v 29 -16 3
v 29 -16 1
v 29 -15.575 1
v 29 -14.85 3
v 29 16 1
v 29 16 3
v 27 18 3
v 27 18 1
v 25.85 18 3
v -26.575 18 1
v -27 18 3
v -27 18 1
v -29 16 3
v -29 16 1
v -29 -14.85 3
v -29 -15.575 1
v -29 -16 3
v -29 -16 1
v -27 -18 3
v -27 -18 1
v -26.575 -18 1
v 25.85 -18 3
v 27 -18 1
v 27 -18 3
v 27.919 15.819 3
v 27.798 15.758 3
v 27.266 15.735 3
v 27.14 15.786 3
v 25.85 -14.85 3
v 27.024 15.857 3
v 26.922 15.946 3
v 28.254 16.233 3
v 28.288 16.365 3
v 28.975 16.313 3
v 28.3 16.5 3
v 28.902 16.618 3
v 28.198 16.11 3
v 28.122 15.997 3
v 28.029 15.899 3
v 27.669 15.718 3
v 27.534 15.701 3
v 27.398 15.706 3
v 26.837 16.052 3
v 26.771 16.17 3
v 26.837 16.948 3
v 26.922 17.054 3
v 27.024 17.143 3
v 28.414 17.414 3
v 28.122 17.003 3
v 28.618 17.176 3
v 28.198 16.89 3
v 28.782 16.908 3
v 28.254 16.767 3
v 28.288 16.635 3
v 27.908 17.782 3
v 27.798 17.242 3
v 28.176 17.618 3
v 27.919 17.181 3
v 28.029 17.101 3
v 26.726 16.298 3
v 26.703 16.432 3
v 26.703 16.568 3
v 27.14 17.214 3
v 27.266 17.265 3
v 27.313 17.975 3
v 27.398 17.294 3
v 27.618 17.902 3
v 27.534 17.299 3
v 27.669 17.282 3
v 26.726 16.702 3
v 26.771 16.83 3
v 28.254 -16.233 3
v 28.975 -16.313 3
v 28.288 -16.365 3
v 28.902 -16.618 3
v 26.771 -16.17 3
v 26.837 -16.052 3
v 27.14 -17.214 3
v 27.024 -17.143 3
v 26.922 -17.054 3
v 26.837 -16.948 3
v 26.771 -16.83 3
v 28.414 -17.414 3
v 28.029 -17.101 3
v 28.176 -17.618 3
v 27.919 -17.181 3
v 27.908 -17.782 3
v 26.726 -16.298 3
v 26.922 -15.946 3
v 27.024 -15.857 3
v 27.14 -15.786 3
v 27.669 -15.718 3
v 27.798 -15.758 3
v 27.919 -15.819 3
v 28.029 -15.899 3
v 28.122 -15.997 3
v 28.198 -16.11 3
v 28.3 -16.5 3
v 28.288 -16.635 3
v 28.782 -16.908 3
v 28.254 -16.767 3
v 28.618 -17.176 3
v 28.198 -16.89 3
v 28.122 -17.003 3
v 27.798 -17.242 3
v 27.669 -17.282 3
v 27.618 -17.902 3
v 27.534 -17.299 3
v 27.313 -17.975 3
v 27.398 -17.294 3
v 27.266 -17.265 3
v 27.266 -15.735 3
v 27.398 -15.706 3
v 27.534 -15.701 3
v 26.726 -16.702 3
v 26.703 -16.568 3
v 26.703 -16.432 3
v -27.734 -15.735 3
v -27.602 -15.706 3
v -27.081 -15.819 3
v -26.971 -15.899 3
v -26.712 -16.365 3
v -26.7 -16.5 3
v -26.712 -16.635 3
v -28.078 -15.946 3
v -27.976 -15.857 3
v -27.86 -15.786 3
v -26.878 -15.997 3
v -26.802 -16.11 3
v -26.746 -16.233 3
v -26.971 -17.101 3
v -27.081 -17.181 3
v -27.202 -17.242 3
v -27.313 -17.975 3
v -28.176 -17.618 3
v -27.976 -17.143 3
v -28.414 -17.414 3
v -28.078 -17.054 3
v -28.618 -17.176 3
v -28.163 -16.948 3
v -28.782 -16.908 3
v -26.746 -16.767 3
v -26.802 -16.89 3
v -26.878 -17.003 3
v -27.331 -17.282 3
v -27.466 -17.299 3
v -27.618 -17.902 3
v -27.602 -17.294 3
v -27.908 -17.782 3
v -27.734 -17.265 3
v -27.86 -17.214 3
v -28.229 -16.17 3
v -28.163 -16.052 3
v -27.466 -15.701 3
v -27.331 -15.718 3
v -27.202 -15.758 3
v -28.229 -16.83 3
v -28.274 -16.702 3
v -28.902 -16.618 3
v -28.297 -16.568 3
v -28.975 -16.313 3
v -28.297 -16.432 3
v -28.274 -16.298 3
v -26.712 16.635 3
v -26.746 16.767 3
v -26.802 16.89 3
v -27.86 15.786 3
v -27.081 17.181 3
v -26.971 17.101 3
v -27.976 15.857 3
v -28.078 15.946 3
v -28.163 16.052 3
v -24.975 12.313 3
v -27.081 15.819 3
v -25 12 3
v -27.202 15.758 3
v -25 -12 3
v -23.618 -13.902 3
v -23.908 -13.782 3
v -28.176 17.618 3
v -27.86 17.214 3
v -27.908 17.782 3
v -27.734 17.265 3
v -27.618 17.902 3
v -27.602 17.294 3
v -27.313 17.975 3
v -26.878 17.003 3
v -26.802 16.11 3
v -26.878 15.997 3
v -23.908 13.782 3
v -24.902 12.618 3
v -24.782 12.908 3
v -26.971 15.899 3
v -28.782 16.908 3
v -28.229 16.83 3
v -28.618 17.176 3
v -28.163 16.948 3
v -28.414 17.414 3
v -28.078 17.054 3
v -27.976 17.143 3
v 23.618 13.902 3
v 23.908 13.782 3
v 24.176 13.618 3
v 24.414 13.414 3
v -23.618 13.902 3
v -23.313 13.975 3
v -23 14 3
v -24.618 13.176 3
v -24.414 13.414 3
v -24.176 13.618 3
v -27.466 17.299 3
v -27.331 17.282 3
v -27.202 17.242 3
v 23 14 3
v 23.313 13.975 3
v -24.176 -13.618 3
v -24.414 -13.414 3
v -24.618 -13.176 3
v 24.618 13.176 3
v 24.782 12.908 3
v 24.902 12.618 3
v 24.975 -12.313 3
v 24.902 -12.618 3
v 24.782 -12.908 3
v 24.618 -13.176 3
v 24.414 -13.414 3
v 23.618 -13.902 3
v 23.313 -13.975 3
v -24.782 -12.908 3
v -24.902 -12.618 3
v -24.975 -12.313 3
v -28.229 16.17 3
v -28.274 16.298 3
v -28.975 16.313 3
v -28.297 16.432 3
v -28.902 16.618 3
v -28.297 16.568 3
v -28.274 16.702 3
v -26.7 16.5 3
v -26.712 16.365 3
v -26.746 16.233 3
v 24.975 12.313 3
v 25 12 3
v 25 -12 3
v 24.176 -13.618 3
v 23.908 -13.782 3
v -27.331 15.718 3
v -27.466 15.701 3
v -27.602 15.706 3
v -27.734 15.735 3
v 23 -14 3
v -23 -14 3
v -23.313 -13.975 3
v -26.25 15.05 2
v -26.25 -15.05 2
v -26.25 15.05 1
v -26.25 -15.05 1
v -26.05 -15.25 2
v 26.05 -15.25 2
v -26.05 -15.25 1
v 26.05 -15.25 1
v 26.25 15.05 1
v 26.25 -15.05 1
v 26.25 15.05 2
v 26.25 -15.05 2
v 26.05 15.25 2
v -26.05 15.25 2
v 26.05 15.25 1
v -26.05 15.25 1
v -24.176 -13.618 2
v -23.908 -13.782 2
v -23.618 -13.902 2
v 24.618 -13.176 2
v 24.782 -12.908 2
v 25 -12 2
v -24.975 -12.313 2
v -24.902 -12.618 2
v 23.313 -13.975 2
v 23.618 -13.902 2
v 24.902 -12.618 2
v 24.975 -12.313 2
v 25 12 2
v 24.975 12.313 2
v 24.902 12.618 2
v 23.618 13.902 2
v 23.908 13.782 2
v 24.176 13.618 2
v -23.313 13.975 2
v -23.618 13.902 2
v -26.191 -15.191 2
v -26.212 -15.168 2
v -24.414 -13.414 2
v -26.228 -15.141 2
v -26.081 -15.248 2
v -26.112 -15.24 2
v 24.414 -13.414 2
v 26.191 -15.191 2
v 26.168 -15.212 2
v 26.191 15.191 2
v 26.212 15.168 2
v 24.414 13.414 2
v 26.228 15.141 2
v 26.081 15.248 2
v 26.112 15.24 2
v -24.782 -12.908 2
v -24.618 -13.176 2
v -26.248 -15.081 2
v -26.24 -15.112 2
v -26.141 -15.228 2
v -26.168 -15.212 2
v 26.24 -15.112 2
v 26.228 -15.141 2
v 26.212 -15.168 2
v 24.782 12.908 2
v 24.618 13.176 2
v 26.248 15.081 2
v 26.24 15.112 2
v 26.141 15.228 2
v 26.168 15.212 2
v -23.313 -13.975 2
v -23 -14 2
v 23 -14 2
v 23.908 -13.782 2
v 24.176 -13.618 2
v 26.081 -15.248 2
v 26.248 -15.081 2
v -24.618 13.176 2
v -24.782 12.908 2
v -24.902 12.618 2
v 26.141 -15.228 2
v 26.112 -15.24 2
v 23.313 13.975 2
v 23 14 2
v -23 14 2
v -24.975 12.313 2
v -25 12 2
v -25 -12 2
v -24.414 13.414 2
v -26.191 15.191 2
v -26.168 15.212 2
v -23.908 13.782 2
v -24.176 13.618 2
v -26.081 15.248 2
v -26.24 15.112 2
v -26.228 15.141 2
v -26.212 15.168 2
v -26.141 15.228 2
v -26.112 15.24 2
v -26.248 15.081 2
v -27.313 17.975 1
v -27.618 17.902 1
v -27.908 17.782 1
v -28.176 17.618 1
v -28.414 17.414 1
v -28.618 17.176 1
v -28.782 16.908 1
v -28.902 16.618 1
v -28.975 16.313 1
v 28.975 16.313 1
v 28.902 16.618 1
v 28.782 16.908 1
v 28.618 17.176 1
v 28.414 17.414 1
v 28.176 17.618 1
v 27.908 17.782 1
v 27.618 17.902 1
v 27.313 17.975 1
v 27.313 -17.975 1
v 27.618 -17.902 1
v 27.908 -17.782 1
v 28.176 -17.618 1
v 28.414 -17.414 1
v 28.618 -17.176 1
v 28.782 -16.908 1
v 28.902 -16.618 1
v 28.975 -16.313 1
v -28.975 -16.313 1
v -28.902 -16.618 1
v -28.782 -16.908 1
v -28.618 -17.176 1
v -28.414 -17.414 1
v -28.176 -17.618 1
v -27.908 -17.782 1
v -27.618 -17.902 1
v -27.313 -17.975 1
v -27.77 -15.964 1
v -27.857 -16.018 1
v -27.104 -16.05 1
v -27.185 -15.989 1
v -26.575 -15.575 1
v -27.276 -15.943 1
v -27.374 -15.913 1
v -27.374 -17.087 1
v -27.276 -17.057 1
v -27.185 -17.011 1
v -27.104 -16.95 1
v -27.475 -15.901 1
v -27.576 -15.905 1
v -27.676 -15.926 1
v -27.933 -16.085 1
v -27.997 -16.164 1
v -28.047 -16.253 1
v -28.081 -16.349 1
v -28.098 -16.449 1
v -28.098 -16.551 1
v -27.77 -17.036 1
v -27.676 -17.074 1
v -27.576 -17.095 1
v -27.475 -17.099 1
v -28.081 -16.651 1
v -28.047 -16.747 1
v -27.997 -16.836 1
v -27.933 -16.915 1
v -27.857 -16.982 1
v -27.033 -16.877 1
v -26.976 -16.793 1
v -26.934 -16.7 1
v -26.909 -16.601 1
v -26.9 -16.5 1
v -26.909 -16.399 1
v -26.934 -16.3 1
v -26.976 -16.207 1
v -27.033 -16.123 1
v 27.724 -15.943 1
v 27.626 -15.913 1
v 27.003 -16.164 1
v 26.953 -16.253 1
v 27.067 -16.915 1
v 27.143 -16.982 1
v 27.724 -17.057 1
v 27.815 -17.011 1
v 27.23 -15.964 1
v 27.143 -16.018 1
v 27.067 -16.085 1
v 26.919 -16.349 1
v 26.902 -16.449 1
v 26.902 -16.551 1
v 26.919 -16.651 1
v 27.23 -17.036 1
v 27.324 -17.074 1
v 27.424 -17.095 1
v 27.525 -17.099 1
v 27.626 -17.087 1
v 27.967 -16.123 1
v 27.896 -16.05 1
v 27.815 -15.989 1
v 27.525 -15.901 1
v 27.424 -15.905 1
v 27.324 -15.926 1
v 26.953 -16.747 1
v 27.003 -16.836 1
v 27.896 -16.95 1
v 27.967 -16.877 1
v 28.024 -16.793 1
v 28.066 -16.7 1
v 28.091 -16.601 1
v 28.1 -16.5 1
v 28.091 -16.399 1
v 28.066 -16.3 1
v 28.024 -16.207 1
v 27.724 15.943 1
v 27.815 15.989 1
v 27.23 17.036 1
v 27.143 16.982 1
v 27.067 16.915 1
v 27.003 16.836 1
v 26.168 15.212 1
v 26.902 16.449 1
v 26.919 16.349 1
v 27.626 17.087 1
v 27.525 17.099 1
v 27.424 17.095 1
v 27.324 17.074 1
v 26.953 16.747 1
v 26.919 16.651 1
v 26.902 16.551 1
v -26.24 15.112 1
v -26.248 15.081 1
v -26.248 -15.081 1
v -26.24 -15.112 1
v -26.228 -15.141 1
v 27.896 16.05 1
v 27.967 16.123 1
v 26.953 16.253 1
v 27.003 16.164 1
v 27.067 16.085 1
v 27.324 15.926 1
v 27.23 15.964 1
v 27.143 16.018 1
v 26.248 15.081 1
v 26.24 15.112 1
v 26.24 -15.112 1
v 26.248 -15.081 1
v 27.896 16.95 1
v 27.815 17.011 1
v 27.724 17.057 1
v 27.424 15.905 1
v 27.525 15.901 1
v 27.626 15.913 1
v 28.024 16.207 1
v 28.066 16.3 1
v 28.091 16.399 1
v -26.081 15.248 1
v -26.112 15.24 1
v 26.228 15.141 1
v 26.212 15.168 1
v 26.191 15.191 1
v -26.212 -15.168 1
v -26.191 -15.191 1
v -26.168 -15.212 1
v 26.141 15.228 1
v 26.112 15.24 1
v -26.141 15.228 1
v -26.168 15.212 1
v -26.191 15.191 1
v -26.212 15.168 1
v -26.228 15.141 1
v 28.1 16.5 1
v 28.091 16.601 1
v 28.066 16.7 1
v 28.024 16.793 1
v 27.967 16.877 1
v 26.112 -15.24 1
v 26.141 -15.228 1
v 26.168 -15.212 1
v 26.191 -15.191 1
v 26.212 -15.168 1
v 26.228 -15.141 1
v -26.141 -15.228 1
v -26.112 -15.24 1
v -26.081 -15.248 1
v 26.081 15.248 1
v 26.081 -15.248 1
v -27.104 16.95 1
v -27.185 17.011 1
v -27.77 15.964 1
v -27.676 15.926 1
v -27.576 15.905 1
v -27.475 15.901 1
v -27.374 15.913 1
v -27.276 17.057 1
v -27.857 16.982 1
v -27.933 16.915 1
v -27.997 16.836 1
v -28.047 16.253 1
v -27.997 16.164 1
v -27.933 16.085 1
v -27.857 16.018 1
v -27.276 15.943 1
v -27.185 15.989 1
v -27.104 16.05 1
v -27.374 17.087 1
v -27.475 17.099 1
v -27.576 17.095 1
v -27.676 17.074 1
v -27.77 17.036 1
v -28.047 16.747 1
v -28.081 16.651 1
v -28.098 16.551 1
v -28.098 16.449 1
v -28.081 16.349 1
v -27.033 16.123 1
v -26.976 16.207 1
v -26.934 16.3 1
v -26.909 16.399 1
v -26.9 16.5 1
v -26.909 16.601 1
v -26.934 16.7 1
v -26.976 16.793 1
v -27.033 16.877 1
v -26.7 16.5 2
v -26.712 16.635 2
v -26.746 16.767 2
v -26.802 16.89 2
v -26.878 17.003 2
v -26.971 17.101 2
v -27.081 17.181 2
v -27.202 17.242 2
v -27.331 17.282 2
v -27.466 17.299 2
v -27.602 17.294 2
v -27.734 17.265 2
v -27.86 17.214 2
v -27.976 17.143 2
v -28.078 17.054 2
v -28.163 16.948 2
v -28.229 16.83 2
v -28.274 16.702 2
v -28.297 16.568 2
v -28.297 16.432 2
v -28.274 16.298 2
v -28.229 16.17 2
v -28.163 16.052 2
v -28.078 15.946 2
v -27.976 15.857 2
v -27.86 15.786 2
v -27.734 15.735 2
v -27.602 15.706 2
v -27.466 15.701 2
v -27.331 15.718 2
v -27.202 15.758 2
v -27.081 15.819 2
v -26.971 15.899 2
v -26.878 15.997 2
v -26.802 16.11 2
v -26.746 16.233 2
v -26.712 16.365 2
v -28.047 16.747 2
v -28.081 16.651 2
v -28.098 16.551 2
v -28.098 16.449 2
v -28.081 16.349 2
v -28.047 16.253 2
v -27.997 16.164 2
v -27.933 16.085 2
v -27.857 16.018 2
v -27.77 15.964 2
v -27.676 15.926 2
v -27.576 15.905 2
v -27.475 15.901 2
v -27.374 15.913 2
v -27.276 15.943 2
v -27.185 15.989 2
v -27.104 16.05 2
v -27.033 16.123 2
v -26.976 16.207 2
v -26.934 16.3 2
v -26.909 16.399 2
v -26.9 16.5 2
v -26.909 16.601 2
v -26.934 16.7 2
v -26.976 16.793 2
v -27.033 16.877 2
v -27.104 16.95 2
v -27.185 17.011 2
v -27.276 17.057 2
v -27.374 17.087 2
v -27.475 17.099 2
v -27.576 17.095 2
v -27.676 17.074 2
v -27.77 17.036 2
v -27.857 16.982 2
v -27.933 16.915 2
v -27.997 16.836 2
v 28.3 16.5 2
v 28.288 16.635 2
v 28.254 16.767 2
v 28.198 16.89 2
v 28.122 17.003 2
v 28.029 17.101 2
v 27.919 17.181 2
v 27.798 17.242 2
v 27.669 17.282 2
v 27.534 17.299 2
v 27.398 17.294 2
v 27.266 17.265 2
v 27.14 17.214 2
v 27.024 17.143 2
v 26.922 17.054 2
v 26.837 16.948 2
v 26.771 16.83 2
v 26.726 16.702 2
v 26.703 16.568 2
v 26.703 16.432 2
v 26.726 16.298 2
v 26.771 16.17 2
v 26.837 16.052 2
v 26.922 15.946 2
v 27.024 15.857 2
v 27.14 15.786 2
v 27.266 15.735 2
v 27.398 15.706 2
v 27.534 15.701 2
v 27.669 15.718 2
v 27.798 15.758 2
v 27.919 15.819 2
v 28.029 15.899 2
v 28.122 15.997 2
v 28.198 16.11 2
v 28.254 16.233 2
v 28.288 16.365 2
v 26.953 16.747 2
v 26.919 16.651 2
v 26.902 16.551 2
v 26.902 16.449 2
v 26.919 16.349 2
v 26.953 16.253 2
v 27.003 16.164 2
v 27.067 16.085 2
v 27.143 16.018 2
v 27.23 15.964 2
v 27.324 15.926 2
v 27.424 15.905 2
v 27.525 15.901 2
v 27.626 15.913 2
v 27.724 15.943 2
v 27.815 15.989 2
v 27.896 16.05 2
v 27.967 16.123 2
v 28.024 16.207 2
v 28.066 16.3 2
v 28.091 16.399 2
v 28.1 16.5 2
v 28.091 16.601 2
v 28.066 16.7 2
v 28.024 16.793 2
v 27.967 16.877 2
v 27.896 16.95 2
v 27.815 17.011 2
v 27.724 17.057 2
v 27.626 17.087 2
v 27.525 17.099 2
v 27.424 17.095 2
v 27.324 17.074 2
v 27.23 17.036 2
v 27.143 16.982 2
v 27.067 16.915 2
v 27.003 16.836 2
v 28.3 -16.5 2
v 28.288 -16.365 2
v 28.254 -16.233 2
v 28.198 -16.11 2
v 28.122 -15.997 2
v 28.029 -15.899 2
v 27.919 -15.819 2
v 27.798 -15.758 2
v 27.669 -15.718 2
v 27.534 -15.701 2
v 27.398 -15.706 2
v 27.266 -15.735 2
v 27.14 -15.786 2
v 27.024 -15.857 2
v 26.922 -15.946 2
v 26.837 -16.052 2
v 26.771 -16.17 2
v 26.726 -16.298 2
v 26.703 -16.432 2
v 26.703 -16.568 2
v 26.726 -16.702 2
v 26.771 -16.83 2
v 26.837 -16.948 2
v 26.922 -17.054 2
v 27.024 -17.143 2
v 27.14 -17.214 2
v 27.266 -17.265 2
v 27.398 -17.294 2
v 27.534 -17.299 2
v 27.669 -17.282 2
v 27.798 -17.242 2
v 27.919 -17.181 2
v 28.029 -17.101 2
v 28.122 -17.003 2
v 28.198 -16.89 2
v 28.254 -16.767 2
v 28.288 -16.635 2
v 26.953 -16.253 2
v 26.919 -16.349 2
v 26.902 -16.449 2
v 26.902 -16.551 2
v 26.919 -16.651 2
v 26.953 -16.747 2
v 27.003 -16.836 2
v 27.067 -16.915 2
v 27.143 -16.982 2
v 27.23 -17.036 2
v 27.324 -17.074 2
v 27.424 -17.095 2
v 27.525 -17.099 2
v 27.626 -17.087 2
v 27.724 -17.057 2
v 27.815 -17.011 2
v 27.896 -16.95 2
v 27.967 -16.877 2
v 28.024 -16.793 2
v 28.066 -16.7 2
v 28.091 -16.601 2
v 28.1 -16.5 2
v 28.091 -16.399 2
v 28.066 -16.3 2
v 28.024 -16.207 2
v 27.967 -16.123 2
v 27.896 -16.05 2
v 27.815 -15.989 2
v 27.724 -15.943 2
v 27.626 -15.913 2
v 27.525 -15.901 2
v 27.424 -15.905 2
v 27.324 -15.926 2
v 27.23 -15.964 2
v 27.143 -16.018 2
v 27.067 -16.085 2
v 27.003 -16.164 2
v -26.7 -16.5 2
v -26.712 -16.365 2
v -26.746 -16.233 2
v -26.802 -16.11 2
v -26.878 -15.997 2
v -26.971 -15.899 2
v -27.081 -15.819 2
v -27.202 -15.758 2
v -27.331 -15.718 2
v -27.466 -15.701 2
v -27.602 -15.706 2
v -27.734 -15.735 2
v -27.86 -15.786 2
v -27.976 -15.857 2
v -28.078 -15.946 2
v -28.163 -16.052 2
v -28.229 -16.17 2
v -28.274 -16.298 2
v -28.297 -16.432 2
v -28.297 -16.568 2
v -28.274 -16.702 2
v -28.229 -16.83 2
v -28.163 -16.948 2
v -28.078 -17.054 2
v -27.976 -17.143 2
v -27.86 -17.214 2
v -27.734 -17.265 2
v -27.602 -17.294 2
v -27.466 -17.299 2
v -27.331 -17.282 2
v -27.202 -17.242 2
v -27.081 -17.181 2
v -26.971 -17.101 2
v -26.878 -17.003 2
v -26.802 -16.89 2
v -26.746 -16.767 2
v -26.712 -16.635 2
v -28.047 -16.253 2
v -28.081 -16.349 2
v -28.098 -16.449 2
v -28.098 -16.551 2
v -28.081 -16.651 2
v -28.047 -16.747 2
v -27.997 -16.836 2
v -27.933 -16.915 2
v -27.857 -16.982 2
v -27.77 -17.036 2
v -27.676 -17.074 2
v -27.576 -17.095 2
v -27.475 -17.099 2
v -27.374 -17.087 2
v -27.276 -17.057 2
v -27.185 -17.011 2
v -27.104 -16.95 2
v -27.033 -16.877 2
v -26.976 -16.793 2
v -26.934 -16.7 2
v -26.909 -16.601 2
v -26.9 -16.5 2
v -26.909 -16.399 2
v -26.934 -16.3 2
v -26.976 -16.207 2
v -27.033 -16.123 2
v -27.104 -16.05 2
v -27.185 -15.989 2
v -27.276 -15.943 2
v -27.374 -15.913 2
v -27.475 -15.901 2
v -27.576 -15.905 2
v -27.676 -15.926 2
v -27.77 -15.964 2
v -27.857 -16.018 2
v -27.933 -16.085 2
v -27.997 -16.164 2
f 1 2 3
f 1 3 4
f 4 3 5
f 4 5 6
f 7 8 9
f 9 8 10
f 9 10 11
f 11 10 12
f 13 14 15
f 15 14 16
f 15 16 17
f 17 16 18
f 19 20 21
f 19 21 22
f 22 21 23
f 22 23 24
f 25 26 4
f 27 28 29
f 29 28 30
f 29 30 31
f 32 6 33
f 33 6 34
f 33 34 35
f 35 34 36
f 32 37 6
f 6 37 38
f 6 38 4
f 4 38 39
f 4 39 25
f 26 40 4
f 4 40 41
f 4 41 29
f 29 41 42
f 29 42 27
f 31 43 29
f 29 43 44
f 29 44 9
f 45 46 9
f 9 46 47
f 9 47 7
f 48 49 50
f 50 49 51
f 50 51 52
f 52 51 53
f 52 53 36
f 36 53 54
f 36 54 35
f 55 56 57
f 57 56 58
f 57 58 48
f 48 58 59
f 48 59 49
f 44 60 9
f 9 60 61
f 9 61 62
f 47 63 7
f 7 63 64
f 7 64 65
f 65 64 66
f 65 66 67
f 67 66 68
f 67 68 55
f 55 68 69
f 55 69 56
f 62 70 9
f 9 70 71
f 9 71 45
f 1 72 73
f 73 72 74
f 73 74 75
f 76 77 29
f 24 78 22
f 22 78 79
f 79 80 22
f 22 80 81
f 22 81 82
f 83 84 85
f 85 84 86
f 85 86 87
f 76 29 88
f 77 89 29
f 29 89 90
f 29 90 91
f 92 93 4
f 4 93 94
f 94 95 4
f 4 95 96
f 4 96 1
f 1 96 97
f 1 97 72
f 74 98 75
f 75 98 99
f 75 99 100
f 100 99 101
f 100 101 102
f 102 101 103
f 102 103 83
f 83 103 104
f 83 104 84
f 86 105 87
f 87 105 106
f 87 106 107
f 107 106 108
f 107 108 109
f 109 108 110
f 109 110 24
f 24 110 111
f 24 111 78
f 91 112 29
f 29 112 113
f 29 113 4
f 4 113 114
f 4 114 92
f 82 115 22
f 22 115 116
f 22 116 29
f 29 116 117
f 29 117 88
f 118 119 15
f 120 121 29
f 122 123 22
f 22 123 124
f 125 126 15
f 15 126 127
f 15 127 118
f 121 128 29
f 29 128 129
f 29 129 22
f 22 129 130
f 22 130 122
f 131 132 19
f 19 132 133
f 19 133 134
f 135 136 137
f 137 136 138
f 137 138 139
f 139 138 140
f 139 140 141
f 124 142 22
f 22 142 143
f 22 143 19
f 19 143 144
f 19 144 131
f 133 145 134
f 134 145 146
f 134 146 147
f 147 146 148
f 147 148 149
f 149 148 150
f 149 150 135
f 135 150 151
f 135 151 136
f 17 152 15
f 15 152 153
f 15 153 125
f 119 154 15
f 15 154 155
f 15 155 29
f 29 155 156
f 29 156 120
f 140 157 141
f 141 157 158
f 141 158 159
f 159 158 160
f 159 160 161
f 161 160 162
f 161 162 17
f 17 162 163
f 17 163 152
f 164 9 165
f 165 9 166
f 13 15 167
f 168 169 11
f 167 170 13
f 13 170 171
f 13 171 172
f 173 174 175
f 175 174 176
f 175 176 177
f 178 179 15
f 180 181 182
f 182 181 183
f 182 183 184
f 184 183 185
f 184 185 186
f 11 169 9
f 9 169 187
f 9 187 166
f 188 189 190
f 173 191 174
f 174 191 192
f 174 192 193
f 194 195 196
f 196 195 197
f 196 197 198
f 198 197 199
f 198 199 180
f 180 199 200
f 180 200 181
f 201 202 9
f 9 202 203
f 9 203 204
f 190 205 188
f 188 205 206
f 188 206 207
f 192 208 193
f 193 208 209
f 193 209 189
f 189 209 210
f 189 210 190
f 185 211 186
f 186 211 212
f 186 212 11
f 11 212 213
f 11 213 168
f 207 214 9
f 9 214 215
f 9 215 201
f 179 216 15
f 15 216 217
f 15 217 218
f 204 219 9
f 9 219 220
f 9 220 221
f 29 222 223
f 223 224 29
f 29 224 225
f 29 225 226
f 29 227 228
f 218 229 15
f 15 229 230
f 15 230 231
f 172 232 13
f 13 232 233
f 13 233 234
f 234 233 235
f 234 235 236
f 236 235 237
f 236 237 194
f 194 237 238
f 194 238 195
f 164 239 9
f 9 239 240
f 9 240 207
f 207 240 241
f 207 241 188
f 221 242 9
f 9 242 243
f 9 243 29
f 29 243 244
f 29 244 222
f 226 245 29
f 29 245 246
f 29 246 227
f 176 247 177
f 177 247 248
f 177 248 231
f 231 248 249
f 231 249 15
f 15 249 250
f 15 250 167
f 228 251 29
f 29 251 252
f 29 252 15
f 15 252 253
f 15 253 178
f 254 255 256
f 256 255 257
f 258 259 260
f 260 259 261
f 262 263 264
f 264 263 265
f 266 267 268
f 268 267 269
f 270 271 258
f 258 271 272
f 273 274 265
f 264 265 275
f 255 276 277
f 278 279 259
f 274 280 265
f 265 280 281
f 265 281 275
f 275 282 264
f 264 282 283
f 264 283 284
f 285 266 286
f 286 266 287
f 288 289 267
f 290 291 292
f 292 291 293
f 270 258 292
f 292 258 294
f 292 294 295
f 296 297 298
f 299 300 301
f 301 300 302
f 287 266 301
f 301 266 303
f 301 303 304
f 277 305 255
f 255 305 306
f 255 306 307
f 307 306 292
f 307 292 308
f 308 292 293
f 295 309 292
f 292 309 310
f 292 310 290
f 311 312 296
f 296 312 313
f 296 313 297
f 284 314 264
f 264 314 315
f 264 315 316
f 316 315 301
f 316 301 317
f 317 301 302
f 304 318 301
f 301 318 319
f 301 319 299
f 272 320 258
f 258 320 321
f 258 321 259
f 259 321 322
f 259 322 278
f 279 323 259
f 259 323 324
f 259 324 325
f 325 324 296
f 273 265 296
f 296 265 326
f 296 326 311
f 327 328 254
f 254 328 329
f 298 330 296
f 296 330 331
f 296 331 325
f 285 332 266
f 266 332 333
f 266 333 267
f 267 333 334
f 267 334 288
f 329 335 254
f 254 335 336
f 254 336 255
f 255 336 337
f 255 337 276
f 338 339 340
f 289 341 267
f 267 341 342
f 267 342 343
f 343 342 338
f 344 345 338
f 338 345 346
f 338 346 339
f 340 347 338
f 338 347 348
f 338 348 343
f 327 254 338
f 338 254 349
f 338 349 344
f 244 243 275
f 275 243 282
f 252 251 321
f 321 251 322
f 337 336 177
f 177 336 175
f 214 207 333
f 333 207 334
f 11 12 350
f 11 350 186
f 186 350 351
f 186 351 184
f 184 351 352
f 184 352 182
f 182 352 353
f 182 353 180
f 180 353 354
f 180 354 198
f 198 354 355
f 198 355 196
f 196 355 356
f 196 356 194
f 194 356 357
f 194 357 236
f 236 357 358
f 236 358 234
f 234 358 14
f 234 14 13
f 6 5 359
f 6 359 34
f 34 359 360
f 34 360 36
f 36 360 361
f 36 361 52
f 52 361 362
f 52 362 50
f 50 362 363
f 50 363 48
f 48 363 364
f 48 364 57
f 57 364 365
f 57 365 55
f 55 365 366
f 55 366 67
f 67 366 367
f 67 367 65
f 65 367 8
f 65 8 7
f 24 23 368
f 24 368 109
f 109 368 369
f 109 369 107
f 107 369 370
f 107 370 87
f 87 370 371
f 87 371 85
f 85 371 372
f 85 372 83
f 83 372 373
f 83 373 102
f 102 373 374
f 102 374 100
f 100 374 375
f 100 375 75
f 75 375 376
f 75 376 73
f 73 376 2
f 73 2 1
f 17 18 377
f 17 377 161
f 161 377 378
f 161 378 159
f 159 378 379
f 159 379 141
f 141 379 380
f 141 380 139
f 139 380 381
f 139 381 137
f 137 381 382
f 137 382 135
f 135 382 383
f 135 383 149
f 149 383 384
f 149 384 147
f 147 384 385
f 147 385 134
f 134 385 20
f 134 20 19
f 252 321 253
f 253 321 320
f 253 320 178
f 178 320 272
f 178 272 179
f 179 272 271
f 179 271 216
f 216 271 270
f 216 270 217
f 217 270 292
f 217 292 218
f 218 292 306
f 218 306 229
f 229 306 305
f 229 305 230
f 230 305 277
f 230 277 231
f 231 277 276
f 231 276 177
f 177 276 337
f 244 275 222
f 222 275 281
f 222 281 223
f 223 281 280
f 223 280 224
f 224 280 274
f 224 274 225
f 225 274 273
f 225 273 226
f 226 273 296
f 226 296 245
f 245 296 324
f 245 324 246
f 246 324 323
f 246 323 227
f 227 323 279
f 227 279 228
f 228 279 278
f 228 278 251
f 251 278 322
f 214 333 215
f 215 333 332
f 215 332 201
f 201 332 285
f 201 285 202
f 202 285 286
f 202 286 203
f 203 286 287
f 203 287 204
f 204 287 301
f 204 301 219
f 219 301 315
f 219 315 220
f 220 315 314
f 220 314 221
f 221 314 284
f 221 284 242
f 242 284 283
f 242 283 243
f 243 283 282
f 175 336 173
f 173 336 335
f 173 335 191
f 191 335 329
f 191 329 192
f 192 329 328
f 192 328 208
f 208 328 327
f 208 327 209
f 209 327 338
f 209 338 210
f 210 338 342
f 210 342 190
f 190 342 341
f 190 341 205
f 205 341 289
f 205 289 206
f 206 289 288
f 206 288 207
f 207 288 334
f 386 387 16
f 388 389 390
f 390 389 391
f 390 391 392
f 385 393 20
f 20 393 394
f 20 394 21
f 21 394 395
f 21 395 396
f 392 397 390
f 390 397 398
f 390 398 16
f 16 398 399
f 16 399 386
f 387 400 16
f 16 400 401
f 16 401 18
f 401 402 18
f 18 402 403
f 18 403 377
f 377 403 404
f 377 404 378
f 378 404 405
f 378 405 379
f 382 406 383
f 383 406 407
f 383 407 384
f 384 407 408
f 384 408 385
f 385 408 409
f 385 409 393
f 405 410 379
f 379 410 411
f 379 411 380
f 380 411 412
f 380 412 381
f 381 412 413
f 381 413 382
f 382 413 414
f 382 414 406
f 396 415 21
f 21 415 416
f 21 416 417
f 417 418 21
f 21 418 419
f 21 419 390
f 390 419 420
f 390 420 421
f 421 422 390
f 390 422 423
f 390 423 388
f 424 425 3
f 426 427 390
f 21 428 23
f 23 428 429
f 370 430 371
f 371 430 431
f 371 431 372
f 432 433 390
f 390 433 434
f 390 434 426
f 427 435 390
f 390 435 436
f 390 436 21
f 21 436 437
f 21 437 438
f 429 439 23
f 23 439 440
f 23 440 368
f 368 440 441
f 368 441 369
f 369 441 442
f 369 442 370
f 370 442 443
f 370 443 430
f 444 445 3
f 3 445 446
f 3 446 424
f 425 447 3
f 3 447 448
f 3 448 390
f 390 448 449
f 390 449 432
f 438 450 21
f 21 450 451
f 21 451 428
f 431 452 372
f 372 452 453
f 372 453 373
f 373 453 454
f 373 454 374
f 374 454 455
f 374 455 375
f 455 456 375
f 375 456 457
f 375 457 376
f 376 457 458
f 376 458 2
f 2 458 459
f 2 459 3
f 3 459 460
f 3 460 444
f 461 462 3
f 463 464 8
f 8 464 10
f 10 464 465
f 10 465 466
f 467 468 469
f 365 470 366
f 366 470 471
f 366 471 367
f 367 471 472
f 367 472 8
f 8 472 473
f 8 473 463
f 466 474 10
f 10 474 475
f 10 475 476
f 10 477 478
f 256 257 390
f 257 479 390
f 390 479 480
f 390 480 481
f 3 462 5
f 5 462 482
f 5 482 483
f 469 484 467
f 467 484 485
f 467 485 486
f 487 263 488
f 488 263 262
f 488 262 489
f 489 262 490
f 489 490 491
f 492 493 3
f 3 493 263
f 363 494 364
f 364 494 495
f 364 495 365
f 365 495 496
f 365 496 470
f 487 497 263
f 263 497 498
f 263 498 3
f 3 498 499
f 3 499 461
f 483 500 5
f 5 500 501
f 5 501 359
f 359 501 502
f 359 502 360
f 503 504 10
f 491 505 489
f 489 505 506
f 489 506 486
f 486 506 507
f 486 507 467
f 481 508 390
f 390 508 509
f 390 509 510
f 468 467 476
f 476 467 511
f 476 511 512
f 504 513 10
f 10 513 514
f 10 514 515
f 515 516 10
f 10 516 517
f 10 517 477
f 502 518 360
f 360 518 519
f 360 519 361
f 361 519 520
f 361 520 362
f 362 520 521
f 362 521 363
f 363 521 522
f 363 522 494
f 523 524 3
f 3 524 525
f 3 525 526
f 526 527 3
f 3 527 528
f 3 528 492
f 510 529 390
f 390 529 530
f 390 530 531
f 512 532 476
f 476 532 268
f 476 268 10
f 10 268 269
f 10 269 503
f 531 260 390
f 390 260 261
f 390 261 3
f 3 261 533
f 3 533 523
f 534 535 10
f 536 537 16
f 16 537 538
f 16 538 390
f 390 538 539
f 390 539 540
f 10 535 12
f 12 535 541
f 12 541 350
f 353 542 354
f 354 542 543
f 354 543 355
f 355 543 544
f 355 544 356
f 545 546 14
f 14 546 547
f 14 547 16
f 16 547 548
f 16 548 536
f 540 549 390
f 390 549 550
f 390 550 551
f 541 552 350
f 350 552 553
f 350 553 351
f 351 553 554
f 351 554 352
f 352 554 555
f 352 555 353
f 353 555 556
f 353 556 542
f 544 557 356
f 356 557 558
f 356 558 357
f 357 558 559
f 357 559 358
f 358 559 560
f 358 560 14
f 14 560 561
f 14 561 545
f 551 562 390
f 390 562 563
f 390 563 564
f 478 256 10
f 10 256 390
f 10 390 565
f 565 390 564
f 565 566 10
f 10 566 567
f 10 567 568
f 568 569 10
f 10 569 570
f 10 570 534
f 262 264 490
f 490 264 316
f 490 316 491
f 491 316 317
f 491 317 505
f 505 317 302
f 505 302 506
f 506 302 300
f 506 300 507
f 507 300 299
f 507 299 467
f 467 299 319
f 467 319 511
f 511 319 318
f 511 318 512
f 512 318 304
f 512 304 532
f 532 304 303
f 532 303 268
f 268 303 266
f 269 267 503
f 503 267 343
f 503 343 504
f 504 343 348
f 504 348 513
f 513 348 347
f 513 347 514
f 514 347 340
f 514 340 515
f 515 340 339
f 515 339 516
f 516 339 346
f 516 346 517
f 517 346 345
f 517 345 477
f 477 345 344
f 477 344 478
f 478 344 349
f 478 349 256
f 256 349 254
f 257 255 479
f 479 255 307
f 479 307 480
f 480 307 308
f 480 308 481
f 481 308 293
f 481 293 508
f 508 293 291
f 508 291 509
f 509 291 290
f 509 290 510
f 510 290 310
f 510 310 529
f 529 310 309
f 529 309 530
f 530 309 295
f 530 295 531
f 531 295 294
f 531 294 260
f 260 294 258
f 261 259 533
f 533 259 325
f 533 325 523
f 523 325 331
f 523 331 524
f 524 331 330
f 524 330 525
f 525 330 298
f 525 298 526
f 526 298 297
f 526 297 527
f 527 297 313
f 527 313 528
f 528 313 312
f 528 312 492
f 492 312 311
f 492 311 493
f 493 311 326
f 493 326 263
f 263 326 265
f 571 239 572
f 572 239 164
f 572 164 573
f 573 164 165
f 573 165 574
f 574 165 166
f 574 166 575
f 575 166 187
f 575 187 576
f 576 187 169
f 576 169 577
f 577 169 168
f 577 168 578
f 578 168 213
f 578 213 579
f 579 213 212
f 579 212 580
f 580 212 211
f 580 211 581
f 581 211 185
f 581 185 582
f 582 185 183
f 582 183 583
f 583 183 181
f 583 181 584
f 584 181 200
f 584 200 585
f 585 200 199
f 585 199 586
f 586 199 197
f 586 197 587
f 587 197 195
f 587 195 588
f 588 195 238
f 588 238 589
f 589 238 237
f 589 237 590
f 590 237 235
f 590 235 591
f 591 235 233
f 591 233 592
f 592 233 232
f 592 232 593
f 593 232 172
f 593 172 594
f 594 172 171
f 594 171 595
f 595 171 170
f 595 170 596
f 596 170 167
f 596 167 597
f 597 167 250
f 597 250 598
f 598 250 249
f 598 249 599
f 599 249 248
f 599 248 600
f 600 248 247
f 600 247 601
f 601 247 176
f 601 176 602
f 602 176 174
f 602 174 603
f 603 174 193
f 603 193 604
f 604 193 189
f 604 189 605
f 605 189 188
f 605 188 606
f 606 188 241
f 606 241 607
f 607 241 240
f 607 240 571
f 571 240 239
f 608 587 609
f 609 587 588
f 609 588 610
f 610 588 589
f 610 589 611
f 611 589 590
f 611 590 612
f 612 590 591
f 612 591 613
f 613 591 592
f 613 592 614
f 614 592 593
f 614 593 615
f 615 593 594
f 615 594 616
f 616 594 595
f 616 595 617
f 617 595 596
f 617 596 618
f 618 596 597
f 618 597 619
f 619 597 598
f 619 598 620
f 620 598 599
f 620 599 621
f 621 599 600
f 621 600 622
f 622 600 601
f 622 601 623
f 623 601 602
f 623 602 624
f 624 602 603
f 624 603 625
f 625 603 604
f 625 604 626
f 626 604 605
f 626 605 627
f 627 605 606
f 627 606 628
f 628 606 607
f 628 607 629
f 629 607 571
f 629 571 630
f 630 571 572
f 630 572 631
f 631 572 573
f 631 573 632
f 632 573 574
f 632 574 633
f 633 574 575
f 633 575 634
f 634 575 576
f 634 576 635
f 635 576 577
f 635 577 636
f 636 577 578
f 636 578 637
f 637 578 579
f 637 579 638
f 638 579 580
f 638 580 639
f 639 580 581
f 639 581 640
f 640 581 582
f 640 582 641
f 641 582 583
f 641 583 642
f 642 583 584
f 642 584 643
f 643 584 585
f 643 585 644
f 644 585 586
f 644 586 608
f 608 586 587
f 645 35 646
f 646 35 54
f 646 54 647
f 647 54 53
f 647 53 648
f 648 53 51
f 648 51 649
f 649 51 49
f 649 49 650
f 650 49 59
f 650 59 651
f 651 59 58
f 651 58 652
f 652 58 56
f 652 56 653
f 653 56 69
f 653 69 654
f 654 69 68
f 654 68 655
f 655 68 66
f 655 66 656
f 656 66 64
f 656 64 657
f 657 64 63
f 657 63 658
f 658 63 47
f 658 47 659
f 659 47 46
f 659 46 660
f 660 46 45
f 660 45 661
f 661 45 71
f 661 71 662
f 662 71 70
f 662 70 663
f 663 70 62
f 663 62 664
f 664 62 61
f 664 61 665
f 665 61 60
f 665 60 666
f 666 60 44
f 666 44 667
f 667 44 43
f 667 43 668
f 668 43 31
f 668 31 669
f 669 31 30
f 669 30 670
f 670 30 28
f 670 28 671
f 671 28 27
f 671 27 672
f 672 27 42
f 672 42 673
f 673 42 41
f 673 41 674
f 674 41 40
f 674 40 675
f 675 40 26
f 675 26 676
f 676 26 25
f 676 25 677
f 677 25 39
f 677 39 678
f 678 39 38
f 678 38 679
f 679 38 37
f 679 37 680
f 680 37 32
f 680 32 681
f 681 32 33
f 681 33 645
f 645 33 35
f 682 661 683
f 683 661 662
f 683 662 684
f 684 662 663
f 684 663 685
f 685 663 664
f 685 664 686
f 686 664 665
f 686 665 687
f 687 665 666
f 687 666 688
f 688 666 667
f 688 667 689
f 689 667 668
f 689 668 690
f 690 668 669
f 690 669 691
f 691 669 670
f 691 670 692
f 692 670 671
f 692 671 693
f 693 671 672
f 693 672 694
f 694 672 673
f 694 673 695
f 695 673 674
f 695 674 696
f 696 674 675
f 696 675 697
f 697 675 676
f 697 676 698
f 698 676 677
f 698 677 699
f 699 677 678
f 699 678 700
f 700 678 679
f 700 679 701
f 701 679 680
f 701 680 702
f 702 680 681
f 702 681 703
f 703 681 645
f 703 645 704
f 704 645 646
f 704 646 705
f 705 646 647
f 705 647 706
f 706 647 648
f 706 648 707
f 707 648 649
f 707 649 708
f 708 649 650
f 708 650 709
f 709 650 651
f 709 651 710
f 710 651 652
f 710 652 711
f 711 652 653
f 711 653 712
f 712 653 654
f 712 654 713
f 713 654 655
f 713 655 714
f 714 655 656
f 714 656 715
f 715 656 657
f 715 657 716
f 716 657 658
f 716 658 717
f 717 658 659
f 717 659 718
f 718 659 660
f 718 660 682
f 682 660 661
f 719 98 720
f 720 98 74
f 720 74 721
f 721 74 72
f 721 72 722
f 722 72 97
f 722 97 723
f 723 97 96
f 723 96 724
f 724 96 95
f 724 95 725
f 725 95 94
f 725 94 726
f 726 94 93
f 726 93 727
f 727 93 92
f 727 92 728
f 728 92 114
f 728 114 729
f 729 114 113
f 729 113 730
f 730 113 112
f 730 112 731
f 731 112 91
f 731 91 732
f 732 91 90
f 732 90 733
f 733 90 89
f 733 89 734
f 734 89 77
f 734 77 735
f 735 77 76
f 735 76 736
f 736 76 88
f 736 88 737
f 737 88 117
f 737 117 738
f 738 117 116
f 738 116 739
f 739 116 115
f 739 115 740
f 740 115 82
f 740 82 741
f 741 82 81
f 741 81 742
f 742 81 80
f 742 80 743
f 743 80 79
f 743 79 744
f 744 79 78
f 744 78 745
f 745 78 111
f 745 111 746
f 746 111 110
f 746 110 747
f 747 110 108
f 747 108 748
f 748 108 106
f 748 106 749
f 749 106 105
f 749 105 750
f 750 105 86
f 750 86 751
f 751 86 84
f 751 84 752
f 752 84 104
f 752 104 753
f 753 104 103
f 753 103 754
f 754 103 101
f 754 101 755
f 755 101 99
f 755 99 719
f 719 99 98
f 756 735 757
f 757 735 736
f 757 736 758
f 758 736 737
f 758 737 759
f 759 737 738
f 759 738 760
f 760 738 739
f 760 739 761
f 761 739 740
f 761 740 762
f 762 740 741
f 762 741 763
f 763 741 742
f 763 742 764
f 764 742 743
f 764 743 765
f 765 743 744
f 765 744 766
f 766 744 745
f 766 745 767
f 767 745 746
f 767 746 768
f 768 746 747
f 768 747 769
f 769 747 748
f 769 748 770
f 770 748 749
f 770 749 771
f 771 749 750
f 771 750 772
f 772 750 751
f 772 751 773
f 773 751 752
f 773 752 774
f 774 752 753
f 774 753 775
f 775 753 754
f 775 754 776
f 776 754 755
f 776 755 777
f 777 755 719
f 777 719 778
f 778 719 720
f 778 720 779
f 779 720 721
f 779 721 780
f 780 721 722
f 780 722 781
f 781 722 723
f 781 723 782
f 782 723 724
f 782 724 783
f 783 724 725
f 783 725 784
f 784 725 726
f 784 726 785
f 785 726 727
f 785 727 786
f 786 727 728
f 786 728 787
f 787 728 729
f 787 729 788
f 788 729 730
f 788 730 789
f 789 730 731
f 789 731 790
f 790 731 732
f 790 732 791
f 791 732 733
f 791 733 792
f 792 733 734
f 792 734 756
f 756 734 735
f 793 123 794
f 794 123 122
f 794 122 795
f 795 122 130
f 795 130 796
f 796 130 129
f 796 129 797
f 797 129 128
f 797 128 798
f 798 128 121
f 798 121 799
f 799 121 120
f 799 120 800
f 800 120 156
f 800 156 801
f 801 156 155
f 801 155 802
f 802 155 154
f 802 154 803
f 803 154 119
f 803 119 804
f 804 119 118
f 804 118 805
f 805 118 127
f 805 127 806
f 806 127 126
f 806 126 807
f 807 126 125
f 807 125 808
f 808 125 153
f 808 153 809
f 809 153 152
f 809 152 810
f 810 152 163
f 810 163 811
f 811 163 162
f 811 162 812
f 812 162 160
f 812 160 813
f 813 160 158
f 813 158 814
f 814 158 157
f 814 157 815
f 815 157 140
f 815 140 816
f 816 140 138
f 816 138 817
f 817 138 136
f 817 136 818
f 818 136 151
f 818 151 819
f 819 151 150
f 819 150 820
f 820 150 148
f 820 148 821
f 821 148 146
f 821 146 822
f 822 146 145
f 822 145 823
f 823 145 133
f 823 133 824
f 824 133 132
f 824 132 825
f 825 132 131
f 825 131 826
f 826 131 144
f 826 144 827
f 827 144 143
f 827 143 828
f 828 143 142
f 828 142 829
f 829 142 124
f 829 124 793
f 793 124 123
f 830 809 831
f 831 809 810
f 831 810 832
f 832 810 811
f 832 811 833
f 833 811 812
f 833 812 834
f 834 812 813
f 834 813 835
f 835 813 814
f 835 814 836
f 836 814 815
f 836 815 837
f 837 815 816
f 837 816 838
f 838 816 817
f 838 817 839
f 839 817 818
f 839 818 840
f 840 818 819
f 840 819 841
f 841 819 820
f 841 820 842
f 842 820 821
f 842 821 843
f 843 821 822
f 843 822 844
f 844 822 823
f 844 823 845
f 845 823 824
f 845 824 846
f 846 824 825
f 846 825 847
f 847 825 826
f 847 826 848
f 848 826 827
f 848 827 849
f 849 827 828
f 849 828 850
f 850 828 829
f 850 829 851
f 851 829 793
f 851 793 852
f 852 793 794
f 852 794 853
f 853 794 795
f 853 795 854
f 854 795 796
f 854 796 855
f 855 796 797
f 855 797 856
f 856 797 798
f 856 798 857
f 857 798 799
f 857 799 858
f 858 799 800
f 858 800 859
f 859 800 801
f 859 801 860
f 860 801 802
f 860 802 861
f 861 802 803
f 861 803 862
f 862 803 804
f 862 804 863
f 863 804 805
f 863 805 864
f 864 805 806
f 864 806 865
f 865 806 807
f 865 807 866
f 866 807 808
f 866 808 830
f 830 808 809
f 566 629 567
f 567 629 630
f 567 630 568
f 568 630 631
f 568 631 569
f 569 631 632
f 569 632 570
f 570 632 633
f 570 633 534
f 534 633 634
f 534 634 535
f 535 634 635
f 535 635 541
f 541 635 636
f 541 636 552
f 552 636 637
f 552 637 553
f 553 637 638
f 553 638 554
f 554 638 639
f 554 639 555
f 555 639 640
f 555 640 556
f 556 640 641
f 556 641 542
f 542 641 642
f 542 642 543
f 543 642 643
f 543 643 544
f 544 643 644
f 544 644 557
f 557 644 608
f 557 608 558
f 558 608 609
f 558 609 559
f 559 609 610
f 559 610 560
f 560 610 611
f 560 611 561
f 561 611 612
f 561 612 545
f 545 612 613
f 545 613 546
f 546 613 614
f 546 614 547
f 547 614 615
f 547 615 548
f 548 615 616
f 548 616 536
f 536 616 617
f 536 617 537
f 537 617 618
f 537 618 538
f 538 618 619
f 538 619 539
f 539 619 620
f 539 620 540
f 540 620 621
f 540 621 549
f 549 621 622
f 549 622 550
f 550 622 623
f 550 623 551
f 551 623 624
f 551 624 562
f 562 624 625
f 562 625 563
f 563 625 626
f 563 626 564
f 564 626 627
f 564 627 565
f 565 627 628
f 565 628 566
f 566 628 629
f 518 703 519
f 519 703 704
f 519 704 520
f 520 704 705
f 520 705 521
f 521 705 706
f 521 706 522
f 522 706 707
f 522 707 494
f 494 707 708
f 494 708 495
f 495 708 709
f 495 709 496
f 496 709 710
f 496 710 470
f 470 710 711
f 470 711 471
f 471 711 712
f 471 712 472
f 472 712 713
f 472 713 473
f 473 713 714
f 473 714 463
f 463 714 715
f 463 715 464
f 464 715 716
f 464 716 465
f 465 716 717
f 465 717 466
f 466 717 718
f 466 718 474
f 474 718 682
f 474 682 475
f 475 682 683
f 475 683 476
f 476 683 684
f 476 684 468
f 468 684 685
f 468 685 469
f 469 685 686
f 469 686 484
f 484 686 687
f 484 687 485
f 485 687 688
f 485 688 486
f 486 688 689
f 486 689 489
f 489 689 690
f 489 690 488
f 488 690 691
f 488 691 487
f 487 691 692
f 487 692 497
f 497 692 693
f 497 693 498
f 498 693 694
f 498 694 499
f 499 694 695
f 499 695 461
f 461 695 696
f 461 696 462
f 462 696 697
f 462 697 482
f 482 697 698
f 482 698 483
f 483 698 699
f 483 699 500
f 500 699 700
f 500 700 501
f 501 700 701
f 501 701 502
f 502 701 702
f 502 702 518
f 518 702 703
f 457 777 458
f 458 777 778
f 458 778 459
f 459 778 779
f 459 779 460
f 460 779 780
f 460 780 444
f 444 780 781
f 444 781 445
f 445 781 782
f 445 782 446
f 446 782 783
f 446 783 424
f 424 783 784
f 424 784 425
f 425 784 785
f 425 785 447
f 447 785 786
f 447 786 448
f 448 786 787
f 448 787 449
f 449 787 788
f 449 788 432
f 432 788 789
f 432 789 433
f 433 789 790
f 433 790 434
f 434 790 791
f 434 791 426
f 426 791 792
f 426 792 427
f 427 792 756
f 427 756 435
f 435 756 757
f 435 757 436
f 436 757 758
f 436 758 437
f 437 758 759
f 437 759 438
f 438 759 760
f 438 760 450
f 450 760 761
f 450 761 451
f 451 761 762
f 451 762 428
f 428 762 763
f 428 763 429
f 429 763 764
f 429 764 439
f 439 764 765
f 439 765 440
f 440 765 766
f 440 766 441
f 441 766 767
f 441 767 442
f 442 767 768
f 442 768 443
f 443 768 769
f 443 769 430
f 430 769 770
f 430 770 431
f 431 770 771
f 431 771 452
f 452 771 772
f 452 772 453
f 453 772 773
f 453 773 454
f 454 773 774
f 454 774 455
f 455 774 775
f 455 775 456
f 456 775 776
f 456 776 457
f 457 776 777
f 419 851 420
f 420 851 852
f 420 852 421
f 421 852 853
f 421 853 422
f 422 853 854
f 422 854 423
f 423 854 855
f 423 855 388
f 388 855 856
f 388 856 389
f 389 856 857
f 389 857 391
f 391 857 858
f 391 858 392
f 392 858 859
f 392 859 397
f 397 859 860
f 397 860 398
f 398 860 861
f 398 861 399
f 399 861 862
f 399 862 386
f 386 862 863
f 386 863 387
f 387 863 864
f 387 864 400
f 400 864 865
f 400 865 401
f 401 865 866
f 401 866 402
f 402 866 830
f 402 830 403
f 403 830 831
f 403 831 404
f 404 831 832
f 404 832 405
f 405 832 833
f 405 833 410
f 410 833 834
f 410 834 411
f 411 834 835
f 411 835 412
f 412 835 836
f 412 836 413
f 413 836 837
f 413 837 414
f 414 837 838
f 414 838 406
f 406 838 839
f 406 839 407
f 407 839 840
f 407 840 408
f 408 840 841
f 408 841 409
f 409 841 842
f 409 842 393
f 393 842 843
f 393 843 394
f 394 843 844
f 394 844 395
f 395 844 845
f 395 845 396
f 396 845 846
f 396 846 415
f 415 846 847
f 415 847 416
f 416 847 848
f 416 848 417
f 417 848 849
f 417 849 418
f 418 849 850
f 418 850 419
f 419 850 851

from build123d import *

# Parameters (mm, degrees)
SKETCH_1_W          = 58
SKETCH_1_H          = 36
EXTRUDE_1_DEPTH     = 3
SKETCH_2_W          = 52.5
SKETCH_2_H          = 30.5
CUT_EXTRUDE_1_DEPTH = 2
SKETCH_3_W          = 50
SKETCH_3_H          = 28
CUT_EXTRUDE_2_DEPTH = 2
FILLET_1_R          = 2
SKETCH_4_W          = 58
SKETCH_4_H          = 36
CUT_EXTRUDE_3_DEPTH = 1
FILLET_2_R          = 0.2
SKETCH_5_R          = 0.8
CUT_EXTRUDE_4_DEPTH = 1
SKETCH_6_R          = 0.6
CUT_EXTRUDE_5_DEPTH = 20.5


with BuildPart() as part:
    # 草图1 → 凸台-拉伸1 (new body)
    with BuildSketch(Plane.XY):
        Rectangle(SKETCH_1_W, SKETCH_1_H)
    extrude(amount=EXTRUDE_1_DEPTH)

    # 草图2 → 切除-拉伸1 (cut)
    with BuildSketch(Plane(origin=(0, 0, 0), x_dir=(-1, 0, 0), z_dir=(0, 0, -1))):
        Rectangle(SKETCH_2_W, SKETCH_2_H)
    extrude(amount=-CUT_EXTRUDE_1_DEPTH, mode=Mode.SUBTRACT)

    # 草图3 → 切除-拉伸2 (cut)
    with BuildSketch(Plane.XY.offset(3)):
        Rectangle(SKETCH_3_W, SKETCH_3_H)
    extrude(amount=-CUT_EXTRUDE_2_DEPTH, mode=Mode.SUBTRACT)

    # 圆角1
    fillet_1_edges = [part.edges().sort_by_distance(p)[0] for p in [
        (25, 14, 2.5),
        (25, -14, 2.5),
        (-25, -14, 2.5),
        (-25, 14, 2.5),
        (29, -18, 1.5),
        (-29, -18, 1.5),
        (-29, 18, 1.5),
        (29, 18, 1.5),
    ]]
    fillet(fillet_1_edges, radius=FILLET_1_R)

    # 草图4 → 切除-拉伸3 (cut)
    with BuildSketch(Plane(origin=(0, 0, 0), x_dir=(-1, 0, 0), z_dir=(0, 0, -1))):
        Rectangle(SKETCH_4_W, SKETCH_4_H)
    extrude(amount=-CUT_EXTRUDE_3_DEPTH, mode=Mode.SUBTRACT)

    # 圆角2
    fillet_2_edges = [part.edges().sort_by_distance(p)[0] for p in [
        (-26.25, 15.25, 1.5),
        (-26.25, -15.25, 1.5),
        (26.25, -15.25, 1.5),
        (26.25, 15.25, 1.5),
    ]]
    fillet(fillet_2_edges, radius=FILLET_2_R)

    # 草图5 → 切除-拉伸4 (cut)
    with BuildSketch(Plane.XY.offset(3)):
        with Locations((-27.5, 16.5)):
            Circle(SKETCH_5_R)
        with Locations((27.5, 16.5)):
            Circle(SKETCH_5_R)
        with Locations((27.5, -16.5)):
            Circle(SKETCH_5_R)
        with Locations((-27.5, -16.5)):
            Circle(SKETCH_5_R)
    extrude(amount=-CUT_EXTRUDE_4_DEPTH, mode=Mode.SUBTRACT)

    # 草图6 → 切除-拉伸5 (cut)
    with BuildSketch(Plane.XY.offset(2)):
        with Locations((-27.5, 16.5)):
            Circle(SKETCH_6_R)
        with Locations((27.5, 16.5)):
            Circle(SKETCH_6_R)
        with Locations((27.5, -16.5)):
            Circle(SKETCH_6_R)
        with Locations((-27.5, -16.5)):
            Circle(SKETCH_6_R)
    extrude(amount=-CUT_EXTRUDE_5_DEPTH, mode=Mode.SUBTRACT)


solid = part.part
